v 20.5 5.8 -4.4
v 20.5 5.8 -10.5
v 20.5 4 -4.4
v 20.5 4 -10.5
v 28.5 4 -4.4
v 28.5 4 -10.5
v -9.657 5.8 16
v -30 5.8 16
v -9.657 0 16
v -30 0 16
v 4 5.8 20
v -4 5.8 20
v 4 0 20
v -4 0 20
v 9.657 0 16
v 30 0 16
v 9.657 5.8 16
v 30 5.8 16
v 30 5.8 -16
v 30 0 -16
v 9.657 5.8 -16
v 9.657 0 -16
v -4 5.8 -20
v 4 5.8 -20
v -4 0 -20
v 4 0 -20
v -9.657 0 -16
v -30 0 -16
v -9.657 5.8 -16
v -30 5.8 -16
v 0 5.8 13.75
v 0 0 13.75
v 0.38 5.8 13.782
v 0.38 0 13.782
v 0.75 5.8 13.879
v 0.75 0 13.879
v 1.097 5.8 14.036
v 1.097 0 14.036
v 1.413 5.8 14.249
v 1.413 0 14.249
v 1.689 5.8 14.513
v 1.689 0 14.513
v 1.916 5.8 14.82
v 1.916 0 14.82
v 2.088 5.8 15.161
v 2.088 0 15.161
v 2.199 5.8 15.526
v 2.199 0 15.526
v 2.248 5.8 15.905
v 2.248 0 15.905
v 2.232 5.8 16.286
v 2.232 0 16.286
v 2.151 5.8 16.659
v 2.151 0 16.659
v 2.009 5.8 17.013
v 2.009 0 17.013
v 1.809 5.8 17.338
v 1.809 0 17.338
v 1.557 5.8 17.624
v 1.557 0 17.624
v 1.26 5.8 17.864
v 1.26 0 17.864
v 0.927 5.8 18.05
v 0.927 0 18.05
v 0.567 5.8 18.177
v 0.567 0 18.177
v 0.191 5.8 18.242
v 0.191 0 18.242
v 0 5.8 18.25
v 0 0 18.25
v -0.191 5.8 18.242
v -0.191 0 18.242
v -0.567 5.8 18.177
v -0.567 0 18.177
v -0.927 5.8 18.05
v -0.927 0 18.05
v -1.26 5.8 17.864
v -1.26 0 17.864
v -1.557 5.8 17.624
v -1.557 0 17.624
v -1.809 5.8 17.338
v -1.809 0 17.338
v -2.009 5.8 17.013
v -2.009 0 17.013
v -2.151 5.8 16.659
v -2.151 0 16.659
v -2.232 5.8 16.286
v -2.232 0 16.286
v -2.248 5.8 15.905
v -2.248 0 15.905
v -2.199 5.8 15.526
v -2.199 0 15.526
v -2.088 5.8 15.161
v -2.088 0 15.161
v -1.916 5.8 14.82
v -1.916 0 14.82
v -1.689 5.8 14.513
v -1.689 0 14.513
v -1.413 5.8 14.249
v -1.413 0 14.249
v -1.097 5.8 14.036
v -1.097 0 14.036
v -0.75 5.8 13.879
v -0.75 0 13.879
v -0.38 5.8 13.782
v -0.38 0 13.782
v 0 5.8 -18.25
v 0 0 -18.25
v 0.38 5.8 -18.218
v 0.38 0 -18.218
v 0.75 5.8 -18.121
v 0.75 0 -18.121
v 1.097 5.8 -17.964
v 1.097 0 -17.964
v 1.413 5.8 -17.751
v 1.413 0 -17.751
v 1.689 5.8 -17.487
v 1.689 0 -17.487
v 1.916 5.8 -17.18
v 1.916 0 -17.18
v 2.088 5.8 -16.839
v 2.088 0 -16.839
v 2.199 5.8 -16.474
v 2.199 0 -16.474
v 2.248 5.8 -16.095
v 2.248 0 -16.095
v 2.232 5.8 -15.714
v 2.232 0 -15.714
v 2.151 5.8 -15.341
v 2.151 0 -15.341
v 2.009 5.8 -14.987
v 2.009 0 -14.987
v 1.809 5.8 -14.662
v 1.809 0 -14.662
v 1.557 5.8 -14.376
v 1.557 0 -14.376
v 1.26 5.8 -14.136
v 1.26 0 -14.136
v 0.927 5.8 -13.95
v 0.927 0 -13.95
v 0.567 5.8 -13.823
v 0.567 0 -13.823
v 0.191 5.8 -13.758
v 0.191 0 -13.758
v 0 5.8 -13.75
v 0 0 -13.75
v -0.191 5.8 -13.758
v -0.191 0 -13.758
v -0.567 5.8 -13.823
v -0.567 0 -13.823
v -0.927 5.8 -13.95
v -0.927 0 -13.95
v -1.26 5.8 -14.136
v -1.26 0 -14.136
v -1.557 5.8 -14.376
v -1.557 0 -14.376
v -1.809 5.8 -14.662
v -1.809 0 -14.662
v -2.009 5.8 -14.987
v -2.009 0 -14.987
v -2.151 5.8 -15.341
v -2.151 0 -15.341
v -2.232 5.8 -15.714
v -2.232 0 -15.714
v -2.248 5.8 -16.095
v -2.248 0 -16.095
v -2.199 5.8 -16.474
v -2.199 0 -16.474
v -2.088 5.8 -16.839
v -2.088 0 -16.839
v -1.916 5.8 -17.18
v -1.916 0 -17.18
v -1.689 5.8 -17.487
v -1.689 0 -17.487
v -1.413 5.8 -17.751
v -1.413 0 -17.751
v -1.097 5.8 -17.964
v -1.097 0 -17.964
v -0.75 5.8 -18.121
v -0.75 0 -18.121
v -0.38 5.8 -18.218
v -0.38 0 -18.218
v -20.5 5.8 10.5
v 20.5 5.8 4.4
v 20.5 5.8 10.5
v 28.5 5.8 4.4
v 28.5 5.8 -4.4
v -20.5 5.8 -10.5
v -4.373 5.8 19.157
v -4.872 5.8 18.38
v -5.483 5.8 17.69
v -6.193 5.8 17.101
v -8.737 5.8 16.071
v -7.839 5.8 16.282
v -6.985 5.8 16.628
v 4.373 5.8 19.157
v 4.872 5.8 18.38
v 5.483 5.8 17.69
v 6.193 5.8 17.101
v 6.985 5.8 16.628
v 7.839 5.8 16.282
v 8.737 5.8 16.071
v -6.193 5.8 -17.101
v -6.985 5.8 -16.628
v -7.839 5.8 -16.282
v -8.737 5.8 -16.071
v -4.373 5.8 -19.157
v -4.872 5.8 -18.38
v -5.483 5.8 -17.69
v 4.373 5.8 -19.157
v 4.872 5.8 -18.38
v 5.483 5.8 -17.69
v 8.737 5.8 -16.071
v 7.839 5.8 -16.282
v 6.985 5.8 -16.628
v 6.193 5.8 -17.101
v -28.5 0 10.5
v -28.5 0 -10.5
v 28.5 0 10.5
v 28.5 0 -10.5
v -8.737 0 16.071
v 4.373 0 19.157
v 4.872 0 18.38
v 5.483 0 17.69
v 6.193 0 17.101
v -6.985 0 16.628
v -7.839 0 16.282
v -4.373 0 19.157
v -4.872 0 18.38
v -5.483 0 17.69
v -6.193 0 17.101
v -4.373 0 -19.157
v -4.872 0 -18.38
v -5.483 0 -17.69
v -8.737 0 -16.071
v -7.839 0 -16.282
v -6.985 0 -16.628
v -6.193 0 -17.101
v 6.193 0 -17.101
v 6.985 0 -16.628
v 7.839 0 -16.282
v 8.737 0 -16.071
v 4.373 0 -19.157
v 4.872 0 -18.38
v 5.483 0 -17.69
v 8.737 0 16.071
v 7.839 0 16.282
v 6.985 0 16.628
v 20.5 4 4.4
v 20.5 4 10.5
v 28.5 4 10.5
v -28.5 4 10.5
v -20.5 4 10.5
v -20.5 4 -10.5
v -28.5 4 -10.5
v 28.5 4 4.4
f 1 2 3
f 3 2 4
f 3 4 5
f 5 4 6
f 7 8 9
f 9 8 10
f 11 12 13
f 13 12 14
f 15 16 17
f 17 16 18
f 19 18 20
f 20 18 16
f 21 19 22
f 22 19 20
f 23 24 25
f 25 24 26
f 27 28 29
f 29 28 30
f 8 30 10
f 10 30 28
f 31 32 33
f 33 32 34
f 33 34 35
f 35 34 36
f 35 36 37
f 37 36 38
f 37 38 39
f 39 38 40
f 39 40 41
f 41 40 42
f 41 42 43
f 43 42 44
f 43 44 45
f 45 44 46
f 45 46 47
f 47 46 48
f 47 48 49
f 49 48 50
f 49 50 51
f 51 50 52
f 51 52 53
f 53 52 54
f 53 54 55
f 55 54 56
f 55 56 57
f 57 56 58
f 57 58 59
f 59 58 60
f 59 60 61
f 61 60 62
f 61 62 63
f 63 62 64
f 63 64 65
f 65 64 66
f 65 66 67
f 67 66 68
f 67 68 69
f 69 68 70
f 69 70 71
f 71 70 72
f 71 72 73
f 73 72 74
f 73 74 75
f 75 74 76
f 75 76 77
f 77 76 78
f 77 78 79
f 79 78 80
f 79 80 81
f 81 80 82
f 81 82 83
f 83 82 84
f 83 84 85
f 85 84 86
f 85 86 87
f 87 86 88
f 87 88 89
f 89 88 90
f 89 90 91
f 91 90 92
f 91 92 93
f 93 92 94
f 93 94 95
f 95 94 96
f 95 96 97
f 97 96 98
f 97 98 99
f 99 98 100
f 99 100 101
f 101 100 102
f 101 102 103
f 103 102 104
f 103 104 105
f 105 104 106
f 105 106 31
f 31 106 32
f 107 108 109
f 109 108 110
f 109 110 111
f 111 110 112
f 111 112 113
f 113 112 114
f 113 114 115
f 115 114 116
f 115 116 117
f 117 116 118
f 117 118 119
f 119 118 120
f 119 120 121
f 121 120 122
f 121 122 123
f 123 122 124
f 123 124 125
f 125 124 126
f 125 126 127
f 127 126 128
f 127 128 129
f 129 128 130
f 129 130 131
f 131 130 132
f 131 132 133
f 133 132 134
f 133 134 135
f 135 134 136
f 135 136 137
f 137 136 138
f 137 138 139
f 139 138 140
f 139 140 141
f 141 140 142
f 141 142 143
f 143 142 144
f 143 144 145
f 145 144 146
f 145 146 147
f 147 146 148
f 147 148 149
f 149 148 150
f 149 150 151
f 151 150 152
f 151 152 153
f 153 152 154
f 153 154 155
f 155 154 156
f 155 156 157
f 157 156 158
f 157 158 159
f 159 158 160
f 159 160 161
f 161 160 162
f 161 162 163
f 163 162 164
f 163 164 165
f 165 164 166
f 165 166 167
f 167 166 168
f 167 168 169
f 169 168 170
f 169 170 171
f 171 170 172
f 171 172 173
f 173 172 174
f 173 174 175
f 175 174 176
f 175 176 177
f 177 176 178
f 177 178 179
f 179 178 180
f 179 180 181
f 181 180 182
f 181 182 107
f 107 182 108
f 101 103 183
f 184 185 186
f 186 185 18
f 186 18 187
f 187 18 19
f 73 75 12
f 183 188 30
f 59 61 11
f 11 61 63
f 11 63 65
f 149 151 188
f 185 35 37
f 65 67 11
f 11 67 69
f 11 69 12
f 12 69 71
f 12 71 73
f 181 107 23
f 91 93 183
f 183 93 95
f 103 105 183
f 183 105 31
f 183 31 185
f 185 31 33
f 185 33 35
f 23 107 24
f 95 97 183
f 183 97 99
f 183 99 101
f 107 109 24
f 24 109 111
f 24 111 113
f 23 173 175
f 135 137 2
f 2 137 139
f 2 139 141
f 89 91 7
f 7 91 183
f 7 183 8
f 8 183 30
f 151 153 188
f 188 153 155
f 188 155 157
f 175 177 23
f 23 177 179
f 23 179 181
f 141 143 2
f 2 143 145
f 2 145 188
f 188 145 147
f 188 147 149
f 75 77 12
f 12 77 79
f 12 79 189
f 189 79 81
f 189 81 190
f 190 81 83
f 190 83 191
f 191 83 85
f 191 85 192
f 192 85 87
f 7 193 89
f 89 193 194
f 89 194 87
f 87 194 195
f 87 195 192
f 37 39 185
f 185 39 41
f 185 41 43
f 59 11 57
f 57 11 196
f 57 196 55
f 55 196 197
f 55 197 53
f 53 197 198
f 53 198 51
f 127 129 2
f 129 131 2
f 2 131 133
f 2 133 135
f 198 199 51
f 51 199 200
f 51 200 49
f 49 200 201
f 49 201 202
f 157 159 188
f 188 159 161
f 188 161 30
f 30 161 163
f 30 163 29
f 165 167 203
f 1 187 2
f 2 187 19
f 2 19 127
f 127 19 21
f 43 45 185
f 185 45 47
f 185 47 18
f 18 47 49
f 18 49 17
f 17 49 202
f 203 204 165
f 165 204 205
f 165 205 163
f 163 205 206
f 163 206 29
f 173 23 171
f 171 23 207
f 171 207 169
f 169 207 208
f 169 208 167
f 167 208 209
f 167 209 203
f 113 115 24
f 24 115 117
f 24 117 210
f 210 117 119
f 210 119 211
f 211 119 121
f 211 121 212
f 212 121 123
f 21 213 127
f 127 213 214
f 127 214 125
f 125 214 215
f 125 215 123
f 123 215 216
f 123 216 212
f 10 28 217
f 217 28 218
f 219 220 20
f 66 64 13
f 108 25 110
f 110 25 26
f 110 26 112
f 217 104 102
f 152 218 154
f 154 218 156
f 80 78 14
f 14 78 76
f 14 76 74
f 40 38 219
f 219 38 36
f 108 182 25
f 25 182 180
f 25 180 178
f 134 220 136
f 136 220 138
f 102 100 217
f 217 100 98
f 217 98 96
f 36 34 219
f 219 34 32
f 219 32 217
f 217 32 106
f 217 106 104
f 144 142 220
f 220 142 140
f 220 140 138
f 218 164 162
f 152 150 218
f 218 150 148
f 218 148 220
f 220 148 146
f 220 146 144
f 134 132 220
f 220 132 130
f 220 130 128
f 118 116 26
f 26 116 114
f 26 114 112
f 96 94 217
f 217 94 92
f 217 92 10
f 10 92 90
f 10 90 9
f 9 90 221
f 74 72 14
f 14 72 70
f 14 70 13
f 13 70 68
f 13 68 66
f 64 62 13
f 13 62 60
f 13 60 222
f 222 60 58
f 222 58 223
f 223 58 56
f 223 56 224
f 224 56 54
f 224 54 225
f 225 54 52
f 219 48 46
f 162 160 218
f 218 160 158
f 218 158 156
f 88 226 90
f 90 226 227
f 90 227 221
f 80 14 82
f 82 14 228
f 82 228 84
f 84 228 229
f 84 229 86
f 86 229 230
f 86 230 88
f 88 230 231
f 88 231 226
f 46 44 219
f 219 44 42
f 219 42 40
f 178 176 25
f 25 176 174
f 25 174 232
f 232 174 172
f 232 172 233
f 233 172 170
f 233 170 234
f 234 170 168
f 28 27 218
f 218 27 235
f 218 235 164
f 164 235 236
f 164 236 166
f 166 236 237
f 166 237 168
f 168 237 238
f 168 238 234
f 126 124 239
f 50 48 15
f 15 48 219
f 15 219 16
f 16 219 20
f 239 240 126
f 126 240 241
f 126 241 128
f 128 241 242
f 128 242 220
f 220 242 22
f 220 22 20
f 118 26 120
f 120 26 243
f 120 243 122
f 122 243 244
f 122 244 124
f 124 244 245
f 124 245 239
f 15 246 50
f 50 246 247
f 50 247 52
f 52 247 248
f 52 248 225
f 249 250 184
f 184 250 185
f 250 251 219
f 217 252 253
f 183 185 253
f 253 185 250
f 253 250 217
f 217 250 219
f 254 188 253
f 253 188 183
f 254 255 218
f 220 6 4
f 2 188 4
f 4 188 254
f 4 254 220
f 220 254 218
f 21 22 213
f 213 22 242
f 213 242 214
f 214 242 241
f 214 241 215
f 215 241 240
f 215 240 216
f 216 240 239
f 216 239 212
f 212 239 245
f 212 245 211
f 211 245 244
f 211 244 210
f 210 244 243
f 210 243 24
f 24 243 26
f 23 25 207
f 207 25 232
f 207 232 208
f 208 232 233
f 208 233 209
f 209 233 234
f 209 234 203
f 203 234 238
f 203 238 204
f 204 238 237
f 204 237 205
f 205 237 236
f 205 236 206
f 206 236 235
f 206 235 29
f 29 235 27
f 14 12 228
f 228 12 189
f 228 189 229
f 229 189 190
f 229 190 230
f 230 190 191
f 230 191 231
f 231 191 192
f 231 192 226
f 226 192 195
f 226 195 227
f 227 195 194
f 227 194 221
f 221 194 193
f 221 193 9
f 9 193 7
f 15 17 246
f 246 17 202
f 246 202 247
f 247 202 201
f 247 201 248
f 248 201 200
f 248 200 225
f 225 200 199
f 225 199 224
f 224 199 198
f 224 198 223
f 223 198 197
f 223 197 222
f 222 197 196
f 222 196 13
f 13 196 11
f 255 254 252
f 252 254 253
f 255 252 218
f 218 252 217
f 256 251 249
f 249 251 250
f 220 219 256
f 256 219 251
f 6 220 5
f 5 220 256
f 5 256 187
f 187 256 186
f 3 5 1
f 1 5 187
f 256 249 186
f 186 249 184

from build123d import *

# Parameters (mm, degrees)
RESSALTO_EXTRUS_O1_DEPTH = 5.8
ESBO_O2_W                = 41
ESBO_O2_H                = 21
CORTE_EXTRUS_O1_DEPTH    = 37.519036132
FILETE1_R                = 6
ESBO_O4_W                = 57
ESBO_O4_H                = 21
CORTE_EXTRUS_O2_DEPTH    = 4
ESBO_O5_W                = 16
ESBO_O5_H                = 8.8
CORTE_EXTRUS_O3_DEPTH    = 10


with BuildPart() as part:
    # Esboço1 → Ressalto-extrusão1 (new body)
    with BuildSketch(Plane(origin=(0, 0, 0), x_dir=(1, 0, 0), z_dir=(0, 1, 0))):
        with BuildLine():
            Line((-4, 20), (-4, 16))
            Line((-4, 16), (-2.25, 16))
            ThreePointArc((-2.25, 16), (0, 18.25), (2.25, 16))
            Line((2.25, 16), (4, 16))
            Line((4, 16), (4, 20))
            Line((4, 20), (-4, 20))
        make_face()
        with BuildLine():
            Line((-2.25, 16), (-4, 16))
            Line((-4, 16), (-4, 12))
            Line((-4, 12), (4, 12))
            Line((4, 12), (4, 16))
            Line((4, 16), (2.25, 16))
            ThreePointArc((2.25, 16), (0, 13.75), (-2.25, 16))
        make_face()
        Polygon((-30, 16), (-30, -16), (-4, -16), (-4, -12), (4, -12), (4, -16), (30, -16), (30, 16), (4, 16), (4, 12), (-4, 12), (-4, 16), align=None)
        with BuildLine():
            Line((-4, -12), (-4, -16))
            Line((-4, -16), (-2.25, -16))
            ThreePointArc((-2.25, -16), (0, -13.75), (2.25, -16))
            Line((2.25, -16), (4, -16))
            Line((4, -16), (4, -12))
            Line((4, -12), (-4, -12))
        make_face()
        with BuildLine():
            Line((-2.25, -16), (-4, -16))
            Line((-4, -16), (-4, -20))
            Line((-4, -20), (4, -20))
            Line((4, -20), (4, -16))
            Line((4, -16), (2.25, -16))
            ThreePointArc((2.25, -16), (0, -18.25), (-2.25, -16))
        make_face()
    extrude(amount=RESSALTO_EXTRUS_O1_DEPTH)

    # Esboço2 → Corte-extrusão1 (cut, through all)
    with BuildSketch(Plane(origin=(0, 5.8, 0), x_dir=(1, 0, 0), z_dir=(0, 1, 0))):
        Rectangle(ESBO_O2_W, ESBO_O2_H)
    extrude(amount=-CORTE_EXTRUS_O1_DEPTH, mode=Mode.SUBTRACT)

    # Filete1
    # the kernel refuses this fillet: 6 mm, written as the material it adds along each edge
    with BuildSketch(Plane(origin=(4, 0, -16), x_dir=(0, 0, -1), z_dir=(0, 1, 0))) as filete1_piece_1:
        with BuildLine():
            CenterArc((6, -5.656854249), FILETE1_R, 109.471220634, 70.528779366)
            Line((0, -5.656854249), (-0.12, -5.656854249))
            Line((-0.12, -5.656854249), (-0.12, 0))
            Line((-0.12, 0), (0, 0.12))
            ThreePointArc((0, 0.12), (2, 0.12), (3.96, 0.113137085))
            Line((3.96, 0.113137085), (4, 0))
        make_face()
    extrude(amount=5.8)
    with BuildSketch(Plane(origin=(-4, 0, -16), x_dir=(0, 0, -1), z_dir=(0, 1, 0))) as filete1_piece_2:
        with BuildLine():
            CenterArc((6, 5.656854249), FILETE1_R, 180, 70.528779366)
            Line((0, 5.656854249), (-0.12, 5.656854249))
            Line((-0.12, 5.656854249), (-0.12, 0))
            Line((-0.12, 0), (0, -0.12))
            ThreePointArc((0, -0.12), (2, -0.12), (3.96, -0.113137085))
            Line((3.96, -0.113137085), (4, 0))
        make_face()
    extrude(amount=5.8)
    with BuildSketch(Plane(origin=(-4, 0, 16), x_dir=(-1, 0, 0), z_dir=(0, 1, 0))) as filete1_piece_3:
        with BuildLine():
            CenterArc((5.656854249, 6), FILETE1_R, 199.471220634, 70.528779366)
            Line((0, 4), (-0.113137085, 3.96))
            ThreePointArc((-0.113137085, 3.96), (-0.12, 2), (-0.12, 0))
            Line((-0.12, 0), (0, -0.12))
            Line((0, -0.12), (5.656854249, -0.12))
            Line((5.656854249, -0.12), (5.656854249, 0))
        make_face()
    extrude(amount=5.8)
    with BuildSketch(Plane(origin=(4, 0, 16), x_dir=(1, 0, 0), z_dir=(0, 1, 0))) as filete1_piece_4:
        with BuildLine():
            CenterArc((5.656854249, -6), FILETE1_R, 90, 70.528779366)
            Line((0, -4), (-0.113137085, -3.96))
            ThreePointArc((-0.113137085, -3.96), (-0.12, -2), (-0.12, 0))
            Line((-0.12, 0), (0, 0.12))
            Line((0, 0.12), (5.656854249, 0.12))
            Line((5.656854249, 0.12), (5.656854249, 0))
        make_face()
    extrude(amount=5.8)

    # Esboço4 → Corte-extrusão2 (cut)
    with BuildSketch(Plane.XZ):
        Rectangle(ESBO_O4_W, ESBO_O4_H)
    extrude(amount=-CORTE_EXTRUS_O2_DEPTH, mode=Mode.SUBTRACT)

    # Esboço5 → Corte-extrusão3 (cut)
    with BuildSketch(Plane.XZ.offset(-4)):
        with Locations((20.5, 0)):
            Rectangle(ESBO_O5_W, ESBO_O5_H)
    extrude(amount=-CORTE_EXTRUS_O3_DEPTH, mode=Mode.SUBTRACT)


solid = part.part
